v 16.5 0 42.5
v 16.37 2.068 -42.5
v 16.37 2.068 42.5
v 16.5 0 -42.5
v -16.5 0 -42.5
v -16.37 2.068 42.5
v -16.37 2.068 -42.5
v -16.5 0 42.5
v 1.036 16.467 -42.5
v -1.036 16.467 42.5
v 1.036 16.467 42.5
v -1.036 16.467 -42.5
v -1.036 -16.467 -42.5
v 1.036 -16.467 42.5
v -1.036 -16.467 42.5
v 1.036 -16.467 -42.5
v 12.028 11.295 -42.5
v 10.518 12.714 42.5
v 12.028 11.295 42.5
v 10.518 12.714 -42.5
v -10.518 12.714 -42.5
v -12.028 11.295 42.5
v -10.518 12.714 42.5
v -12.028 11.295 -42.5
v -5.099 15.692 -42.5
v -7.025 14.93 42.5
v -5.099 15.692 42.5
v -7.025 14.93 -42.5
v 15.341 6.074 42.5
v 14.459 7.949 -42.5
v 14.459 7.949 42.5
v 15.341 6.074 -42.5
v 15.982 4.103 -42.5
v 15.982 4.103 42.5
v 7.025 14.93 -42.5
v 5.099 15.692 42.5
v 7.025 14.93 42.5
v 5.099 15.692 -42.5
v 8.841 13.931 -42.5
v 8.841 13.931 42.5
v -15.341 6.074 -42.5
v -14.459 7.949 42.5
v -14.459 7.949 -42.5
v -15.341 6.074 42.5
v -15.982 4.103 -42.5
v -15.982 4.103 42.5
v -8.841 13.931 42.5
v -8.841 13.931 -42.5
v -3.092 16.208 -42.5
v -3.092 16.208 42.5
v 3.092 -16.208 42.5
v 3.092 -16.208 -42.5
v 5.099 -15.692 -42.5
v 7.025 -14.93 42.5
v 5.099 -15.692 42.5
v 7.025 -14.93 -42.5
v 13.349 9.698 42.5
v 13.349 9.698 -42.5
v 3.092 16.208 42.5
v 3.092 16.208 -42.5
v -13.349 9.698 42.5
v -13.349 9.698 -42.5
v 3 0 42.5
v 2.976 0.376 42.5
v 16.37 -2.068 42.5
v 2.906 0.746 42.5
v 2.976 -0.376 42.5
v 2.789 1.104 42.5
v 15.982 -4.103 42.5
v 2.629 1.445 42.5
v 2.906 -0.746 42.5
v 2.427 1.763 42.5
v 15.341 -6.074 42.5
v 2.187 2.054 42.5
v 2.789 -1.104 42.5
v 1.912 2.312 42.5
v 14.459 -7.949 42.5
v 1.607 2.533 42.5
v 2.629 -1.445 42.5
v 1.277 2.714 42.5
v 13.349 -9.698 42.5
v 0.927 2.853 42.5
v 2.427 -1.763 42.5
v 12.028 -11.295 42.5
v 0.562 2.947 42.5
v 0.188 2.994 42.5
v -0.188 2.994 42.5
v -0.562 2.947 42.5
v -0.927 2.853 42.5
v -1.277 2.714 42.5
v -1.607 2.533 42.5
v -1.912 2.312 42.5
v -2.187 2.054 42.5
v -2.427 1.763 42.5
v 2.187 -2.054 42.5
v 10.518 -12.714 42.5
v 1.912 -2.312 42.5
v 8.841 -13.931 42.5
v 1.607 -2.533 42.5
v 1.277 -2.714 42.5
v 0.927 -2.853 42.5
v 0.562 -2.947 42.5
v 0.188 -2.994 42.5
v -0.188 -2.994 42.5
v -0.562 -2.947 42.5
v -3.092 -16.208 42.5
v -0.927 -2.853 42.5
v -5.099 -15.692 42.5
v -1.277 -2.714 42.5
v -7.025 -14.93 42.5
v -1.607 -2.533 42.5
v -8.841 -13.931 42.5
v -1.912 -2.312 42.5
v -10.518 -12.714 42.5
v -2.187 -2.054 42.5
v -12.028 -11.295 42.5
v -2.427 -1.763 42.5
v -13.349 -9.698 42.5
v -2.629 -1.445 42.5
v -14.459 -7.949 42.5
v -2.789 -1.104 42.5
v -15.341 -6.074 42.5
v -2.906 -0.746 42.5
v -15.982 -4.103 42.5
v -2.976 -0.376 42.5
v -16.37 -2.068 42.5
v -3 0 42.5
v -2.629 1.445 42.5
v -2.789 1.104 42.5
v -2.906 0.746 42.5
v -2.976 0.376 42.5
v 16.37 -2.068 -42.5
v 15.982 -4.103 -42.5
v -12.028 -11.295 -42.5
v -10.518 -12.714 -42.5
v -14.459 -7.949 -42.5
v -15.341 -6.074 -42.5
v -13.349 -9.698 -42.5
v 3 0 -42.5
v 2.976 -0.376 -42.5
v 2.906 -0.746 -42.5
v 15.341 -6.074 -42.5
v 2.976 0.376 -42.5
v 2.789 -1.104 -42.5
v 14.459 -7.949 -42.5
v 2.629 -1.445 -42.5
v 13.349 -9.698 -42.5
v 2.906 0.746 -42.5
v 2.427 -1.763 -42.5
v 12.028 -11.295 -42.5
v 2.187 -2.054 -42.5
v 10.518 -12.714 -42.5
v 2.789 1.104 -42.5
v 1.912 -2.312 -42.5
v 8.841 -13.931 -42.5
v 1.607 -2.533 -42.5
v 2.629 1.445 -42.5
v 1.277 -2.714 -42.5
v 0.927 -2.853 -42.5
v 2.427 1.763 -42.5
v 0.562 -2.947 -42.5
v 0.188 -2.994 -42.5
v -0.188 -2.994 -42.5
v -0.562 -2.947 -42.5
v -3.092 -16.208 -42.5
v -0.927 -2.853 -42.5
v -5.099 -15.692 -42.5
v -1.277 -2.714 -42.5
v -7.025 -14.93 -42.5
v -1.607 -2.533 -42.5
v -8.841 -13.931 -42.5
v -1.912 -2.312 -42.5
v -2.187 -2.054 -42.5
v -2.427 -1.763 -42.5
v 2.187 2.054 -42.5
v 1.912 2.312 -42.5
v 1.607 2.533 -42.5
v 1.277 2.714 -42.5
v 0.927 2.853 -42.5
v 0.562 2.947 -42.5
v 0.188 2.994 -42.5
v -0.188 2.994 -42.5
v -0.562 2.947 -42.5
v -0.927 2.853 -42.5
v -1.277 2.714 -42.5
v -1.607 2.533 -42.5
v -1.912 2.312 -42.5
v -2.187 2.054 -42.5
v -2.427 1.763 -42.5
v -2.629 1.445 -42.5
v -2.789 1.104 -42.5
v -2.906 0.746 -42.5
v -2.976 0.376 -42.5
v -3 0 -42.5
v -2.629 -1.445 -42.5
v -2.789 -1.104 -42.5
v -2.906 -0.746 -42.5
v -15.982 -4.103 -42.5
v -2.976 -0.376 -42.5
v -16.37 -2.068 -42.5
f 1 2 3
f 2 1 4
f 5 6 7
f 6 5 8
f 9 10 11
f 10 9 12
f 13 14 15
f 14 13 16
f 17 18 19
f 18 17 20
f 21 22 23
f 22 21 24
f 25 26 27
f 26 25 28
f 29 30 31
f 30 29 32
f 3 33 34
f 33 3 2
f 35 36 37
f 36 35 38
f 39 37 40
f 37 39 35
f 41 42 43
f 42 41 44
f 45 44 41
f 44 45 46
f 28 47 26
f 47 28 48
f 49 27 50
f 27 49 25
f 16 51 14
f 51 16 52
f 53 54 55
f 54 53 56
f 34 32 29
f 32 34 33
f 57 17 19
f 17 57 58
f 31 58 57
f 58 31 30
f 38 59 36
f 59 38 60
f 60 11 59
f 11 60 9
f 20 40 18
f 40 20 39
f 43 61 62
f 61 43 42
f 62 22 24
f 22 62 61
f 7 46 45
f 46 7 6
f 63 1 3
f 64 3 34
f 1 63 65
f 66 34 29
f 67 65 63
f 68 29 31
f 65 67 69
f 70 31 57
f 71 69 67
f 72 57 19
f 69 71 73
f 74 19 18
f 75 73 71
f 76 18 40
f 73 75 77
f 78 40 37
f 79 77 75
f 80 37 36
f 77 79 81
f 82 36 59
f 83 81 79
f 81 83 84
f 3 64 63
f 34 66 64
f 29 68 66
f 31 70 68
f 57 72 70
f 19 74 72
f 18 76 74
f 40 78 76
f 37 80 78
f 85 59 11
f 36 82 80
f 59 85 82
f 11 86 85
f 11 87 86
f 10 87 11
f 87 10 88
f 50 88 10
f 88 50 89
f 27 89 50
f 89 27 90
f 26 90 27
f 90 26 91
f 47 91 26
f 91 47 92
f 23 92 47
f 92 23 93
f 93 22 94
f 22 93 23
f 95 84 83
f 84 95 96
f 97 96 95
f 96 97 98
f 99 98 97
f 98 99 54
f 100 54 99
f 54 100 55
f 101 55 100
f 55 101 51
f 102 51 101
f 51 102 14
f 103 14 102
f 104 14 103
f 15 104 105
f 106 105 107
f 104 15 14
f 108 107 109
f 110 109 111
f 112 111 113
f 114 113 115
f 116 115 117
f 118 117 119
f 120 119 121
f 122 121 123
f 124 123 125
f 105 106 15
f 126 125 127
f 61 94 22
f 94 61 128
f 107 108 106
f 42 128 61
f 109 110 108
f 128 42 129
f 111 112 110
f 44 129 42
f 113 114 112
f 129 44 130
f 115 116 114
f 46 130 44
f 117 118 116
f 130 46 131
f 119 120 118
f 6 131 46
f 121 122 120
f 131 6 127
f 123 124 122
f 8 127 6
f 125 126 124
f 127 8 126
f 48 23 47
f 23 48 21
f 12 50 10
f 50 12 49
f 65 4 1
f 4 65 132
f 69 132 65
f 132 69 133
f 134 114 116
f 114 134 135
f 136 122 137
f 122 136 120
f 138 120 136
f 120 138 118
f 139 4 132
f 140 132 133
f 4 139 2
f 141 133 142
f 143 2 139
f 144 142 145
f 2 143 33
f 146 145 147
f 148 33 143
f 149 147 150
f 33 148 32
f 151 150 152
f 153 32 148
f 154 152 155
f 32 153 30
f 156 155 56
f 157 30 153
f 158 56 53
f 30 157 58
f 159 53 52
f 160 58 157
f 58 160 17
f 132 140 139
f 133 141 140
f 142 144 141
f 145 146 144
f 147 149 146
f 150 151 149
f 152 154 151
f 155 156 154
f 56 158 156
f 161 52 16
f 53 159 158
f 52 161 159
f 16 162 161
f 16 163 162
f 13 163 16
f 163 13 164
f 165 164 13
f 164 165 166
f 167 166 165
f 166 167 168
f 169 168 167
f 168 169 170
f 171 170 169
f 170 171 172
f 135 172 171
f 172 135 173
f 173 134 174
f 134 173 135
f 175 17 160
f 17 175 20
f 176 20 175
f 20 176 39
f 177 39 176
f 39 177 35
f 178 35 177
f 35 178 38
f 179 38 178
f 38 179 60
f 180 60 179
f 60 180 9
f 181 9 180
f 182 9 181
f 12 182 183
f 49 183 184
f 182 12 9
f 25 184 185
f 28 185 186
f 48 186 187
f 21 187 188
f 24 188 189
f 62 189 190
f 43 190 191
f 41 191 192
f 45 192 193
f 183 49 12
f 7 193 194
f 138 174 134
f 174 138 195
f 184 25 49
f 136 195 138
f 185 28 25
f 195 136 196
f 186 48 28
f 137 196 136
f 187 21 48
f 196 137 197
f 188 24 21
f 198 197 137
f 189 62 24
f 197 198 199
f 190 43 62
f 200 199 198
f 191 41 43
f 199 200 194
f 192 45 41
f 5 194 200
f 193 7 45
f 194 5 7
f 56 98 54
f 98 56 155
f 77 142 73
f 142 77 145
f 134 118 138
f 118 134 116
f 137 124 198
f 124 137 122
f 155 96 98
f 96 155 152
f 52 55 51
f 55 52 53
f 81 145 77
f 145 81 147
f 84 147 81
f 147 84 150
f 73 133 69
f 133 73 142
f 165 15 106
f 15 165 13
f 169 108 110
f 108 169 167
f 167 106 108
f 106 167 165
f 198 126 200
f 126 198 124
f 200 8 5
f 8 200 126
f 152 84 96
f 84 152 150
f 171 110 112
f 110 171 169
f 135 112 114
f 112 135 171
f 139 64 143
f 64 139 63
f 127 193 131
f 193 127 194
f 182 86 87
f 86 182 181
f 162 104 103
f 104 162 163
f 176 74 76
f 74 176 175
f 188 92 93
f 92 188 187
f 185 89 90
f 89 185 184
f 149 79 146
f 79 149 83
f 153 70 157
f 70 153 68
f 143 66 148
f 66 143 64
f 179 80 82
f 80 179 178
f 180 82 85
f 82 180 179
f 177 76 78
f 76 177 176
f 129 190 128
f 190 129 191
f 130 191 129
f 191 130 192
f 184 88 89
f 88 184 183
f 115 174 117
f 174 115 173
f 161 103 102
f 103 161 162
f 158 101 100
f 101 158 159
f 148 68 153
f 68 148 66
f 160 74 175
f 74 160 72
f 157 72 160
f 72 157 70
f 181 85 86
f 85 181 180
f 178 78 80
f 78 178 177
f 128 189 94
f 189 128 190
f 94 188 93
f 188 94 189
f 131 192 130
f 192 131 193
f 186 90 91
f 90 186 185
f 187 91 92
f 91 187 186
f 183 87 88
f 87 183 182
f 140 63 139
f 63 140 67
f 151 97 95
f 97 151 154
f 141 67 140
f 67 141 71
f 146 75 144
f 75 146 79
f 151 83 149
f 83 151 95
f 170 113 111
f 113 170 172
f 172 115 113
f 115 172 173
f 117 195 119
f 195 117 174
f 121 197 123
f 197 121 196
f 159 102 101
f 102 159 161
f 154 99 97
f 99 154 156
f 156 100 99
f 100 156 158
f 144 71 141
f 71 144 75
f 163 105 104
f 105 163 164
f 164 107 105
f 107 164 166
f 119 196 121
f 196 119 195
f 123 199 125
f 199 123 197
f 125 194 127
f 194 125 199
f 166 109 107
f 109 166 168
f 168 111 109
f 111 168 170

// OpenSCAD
$fn = 50;


difference() {
	union() {
		translate(v = [0, 0, -42.5000000000]) {
			cylinder(h = 85, r = 16.5000000000);
		}
	}
	union() {
		translate(v = [0, 0, -100.0000000000]) {
			cylinder(h = 200, r = 3);
		}
	}
}
